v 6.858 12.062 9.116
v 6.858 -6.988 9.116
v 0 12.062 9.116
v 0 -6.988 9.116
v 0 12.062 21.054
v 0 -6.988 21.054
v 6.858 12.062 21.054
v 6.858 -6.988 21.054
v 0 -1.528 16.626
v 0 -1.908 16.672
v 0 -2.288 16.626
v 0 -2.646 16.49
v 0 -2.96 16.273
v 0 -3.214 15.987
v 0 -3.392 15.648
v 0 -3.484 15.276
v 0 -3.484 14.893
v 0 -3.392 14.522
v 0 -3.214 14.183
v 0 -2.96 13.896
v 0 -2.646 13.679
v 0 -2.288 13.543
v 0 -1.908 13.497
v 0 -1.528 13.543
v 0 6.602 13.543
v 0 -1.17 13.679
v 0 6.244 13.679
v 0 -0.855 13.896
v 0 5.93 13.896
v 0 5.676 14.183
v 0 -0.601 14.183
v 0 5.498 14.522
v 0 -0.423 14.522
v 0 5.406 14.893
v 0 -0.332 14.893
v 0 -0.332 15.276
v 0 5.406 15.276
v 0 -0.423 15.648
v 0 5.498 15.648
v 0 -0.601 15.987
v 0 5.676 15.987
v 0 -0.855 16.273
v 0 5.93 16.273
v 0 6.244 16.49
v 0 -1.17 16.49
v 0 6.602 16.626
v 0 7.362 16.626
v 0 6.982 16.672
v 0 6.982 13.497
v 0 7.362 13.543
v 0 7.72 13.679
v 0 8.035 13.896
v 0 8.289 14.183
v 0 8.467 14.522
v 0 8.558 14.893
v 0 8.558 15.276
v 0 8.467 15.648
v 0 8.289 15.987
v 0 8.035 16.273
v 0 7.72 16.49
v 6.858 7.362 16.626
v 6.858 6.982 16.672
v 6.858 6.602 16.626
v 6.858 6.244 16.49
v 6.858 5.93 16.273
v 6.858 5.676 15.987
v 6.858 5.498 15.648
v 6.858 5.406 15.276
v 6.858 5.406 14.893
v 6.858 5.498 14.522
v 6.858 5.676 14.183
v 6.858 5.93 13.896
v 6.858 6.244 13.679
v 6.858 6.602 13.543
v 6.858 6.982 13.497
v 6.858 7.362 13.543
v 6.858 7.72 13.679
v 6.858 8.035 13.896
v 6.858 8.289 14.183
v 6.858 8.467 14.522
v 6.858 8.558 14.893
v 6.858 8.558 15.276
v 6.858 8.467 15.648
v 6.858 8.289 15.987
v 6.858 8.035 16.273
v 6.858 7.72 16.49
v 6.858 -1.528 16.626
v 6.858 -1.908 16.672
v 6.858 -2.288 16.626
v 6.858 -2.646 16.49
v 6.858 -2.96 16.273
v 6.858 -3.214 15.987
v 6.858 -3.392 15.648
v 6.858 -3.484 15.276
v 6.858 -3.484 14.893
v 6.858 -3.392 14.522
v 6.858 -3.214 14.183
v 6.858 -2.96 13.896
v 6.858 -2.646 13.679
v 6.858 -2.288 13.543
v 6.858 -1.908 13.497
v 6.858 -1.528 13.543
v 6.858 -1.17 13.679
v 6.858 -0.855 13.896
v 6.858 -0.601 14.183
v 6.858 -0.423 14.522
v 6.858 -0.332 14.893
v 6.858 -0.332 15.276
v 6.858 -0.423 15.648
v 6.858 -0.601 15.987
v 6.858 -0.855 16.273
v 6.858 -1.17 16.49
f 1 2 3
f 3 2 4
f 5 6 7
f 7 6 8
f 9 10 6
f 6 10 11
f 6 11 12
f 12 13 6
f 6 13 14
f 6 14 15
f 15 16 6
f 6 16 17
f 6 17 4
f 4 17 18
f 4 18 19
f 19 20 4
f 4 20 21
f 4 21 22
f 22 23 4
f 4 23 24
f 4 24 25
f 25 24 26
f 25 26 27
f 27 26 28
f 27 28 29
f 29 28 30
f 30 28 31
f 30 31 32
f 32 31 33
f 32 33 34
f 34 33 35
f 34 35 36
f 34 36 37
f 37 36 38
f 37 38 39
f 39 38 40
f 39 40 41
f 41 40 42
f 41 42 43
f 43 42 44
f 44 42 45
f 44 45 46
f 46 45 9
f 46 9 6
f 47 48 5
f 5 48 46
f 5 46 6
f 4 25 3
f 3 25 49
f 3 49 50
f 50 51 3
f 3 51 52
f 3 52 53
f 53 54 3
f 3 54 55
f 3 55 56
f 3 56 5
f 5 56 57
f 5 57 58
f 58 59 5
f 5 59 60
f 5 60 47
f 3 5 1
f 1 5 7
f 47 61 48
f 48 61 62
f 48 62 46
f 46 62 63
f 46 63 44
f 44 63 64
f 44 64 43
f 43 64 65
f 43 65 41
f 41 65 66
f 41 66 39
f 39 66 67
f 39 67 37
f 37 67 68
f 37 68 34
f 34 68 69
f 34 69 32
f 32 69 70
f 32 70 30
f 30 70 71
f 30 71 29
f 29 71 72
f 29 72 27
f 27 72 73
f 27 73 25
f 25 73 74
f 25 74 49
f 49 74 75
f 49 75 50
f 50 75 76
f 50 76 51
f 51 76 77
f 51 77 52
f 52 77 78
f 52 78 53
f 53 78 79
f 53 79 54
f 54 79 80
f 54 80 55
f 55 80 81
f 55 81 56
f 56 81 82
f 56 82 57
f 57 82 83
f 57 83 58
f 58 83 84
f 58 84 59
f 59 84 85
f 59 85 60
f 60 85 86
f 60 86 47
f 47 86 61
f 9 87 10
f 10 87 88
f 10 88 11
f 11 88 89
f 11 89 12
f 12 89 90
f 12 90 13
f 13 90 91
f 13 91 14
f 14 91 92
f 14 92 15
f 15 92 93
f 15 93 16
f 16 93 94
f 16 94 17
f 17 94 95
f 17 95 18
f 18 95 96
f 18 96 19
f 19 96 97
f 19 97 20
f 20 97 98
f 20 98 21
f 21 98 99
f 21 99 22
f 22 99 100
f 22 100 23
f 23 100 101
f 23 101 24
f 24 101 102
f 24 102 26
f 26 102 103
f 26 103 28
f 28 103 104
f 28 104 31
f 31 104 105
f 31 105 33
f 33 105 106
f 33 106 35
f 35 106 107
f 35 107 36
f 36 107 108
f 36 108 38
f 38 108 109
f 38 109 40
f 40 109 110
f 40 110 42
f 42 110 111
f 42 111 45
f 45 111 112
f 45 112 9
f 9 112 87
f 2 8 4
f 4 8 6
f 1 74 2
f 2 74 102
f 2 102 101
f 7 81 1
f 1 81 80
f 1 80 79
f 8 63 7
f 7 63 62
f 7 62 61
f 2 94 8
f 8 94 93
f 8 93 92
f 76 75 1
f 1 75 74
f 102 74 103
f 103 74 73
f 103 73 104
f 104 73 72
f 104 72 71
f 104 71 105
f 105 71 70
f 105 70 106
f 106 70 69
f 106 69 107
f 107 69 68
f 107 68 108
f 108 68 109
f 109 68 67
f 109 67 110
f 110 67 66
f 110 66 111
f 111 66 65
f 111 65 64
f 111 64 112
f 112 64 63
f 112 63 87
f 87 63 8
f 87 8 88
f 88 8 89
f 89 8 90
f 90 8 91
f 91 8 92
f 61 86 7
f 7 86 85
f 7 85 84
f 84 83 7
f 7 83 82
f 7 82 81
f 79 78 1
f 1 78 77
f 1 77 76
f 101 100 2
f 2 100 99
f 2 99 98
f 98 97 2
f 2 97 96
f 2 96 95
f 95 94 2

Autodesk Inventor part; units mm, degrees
ref_plane "YZ Plane" through (0, 0, 0) normal (1, 0, 0) x (0, 1, 0)
ref_plane "XZ Plane" through (0, 0, 0) normal (0, 1, 0) x (-1, 0, 0)
ref_plane "XY Plane" through (0, 0, 0) normal (0, 0, 1) x (1, 0, 0)
sketch "Sketch1" plane through (0, 0, 0) normal (1, 0, 0) x (0, 1, 0)
  line L0 (12.0622, 21.4347) -> (-6.9878, 21.4347)
  line L1 (-6.9878, 21.4347) -> (-6.9878, 8.7347)
  line L2 (-6.9878, 8.7347) -> (12.0622, 8.7347)
  line L3 (12.0622, 8.7347) -> (12.0622, 21.4347)
  point P0 (0, 0)
  dimension "d0" = 12.7
  dimension "d1" = 19.05
extrude "Extrusion1" add sketch "Sketch1" along normal blind 6.858
sketch "Sketch2" plane through (6.858, 0, 0) normal (1, 0, 0) x (0, 0, -1)
  line L0 (-8.7347, -6.9878) -> (-8.7347, 12.0622) projected
  line L1 (-8.7347, 12.0622) -> (-21.4347, 12.0622) projected
  point P0 (0, 0)
  point P1 (-15.0847, 6.9822)
  point P2 (-15.0847, -1.9078)
  dimension "d4" = 6.35
  dimension "d5" = 6.35
  dimension "d6" = 13.97
  dimension "d7" = 5.08
hole "Hole1" at (6.858, 6.9822, 15.0847) at (6.858, -1.9078, 15.0847) direction (-1, 0, 0) diameter 3.175 end through all
sketch "Sketch3" plane through (6.858, 0, 0) normal (1, 0, 0) x (0, 0, -1)
  line L0 (-23.9685, 13.1299) -> (-21.0537, 13.1299)
  line L1 (-21.0537, 13.1299) -> (-21.0537, -8.0318)
  line L2 (-21.0537, -8.0318) -> (-23.9685, -8.0318)
  line L3 (-23.9685, -8.0318) -> (-23.9685, 13.1299)
  line L4 (-7.9023, 13.3864) -> (-9.1157, 13.3864)
  line L5 (-9.1157, 13.3864) -> (-9.1157, -8.3525)
  line L6 (-9.1157, -8.3525) -> (-7.9023, -8.3525)
  line L7 (-7.9023, -8.3525) -> (-7.9023, 13.3864)
  line L8 (-21.4347, 12.0622) -> (-21.4347, -6.9878) projected
  line L9 (-8.7347, -6.9878) -> (-8.7347, 12.0622) projected
  point P0 (0, 0)
  dimension "d15" = 0.381
  dimension "d16" = 0.381
extrude "Extrusion2" cut sketch "Sketch3" against normal blind 25.4
properties part number "SliderBlock"
